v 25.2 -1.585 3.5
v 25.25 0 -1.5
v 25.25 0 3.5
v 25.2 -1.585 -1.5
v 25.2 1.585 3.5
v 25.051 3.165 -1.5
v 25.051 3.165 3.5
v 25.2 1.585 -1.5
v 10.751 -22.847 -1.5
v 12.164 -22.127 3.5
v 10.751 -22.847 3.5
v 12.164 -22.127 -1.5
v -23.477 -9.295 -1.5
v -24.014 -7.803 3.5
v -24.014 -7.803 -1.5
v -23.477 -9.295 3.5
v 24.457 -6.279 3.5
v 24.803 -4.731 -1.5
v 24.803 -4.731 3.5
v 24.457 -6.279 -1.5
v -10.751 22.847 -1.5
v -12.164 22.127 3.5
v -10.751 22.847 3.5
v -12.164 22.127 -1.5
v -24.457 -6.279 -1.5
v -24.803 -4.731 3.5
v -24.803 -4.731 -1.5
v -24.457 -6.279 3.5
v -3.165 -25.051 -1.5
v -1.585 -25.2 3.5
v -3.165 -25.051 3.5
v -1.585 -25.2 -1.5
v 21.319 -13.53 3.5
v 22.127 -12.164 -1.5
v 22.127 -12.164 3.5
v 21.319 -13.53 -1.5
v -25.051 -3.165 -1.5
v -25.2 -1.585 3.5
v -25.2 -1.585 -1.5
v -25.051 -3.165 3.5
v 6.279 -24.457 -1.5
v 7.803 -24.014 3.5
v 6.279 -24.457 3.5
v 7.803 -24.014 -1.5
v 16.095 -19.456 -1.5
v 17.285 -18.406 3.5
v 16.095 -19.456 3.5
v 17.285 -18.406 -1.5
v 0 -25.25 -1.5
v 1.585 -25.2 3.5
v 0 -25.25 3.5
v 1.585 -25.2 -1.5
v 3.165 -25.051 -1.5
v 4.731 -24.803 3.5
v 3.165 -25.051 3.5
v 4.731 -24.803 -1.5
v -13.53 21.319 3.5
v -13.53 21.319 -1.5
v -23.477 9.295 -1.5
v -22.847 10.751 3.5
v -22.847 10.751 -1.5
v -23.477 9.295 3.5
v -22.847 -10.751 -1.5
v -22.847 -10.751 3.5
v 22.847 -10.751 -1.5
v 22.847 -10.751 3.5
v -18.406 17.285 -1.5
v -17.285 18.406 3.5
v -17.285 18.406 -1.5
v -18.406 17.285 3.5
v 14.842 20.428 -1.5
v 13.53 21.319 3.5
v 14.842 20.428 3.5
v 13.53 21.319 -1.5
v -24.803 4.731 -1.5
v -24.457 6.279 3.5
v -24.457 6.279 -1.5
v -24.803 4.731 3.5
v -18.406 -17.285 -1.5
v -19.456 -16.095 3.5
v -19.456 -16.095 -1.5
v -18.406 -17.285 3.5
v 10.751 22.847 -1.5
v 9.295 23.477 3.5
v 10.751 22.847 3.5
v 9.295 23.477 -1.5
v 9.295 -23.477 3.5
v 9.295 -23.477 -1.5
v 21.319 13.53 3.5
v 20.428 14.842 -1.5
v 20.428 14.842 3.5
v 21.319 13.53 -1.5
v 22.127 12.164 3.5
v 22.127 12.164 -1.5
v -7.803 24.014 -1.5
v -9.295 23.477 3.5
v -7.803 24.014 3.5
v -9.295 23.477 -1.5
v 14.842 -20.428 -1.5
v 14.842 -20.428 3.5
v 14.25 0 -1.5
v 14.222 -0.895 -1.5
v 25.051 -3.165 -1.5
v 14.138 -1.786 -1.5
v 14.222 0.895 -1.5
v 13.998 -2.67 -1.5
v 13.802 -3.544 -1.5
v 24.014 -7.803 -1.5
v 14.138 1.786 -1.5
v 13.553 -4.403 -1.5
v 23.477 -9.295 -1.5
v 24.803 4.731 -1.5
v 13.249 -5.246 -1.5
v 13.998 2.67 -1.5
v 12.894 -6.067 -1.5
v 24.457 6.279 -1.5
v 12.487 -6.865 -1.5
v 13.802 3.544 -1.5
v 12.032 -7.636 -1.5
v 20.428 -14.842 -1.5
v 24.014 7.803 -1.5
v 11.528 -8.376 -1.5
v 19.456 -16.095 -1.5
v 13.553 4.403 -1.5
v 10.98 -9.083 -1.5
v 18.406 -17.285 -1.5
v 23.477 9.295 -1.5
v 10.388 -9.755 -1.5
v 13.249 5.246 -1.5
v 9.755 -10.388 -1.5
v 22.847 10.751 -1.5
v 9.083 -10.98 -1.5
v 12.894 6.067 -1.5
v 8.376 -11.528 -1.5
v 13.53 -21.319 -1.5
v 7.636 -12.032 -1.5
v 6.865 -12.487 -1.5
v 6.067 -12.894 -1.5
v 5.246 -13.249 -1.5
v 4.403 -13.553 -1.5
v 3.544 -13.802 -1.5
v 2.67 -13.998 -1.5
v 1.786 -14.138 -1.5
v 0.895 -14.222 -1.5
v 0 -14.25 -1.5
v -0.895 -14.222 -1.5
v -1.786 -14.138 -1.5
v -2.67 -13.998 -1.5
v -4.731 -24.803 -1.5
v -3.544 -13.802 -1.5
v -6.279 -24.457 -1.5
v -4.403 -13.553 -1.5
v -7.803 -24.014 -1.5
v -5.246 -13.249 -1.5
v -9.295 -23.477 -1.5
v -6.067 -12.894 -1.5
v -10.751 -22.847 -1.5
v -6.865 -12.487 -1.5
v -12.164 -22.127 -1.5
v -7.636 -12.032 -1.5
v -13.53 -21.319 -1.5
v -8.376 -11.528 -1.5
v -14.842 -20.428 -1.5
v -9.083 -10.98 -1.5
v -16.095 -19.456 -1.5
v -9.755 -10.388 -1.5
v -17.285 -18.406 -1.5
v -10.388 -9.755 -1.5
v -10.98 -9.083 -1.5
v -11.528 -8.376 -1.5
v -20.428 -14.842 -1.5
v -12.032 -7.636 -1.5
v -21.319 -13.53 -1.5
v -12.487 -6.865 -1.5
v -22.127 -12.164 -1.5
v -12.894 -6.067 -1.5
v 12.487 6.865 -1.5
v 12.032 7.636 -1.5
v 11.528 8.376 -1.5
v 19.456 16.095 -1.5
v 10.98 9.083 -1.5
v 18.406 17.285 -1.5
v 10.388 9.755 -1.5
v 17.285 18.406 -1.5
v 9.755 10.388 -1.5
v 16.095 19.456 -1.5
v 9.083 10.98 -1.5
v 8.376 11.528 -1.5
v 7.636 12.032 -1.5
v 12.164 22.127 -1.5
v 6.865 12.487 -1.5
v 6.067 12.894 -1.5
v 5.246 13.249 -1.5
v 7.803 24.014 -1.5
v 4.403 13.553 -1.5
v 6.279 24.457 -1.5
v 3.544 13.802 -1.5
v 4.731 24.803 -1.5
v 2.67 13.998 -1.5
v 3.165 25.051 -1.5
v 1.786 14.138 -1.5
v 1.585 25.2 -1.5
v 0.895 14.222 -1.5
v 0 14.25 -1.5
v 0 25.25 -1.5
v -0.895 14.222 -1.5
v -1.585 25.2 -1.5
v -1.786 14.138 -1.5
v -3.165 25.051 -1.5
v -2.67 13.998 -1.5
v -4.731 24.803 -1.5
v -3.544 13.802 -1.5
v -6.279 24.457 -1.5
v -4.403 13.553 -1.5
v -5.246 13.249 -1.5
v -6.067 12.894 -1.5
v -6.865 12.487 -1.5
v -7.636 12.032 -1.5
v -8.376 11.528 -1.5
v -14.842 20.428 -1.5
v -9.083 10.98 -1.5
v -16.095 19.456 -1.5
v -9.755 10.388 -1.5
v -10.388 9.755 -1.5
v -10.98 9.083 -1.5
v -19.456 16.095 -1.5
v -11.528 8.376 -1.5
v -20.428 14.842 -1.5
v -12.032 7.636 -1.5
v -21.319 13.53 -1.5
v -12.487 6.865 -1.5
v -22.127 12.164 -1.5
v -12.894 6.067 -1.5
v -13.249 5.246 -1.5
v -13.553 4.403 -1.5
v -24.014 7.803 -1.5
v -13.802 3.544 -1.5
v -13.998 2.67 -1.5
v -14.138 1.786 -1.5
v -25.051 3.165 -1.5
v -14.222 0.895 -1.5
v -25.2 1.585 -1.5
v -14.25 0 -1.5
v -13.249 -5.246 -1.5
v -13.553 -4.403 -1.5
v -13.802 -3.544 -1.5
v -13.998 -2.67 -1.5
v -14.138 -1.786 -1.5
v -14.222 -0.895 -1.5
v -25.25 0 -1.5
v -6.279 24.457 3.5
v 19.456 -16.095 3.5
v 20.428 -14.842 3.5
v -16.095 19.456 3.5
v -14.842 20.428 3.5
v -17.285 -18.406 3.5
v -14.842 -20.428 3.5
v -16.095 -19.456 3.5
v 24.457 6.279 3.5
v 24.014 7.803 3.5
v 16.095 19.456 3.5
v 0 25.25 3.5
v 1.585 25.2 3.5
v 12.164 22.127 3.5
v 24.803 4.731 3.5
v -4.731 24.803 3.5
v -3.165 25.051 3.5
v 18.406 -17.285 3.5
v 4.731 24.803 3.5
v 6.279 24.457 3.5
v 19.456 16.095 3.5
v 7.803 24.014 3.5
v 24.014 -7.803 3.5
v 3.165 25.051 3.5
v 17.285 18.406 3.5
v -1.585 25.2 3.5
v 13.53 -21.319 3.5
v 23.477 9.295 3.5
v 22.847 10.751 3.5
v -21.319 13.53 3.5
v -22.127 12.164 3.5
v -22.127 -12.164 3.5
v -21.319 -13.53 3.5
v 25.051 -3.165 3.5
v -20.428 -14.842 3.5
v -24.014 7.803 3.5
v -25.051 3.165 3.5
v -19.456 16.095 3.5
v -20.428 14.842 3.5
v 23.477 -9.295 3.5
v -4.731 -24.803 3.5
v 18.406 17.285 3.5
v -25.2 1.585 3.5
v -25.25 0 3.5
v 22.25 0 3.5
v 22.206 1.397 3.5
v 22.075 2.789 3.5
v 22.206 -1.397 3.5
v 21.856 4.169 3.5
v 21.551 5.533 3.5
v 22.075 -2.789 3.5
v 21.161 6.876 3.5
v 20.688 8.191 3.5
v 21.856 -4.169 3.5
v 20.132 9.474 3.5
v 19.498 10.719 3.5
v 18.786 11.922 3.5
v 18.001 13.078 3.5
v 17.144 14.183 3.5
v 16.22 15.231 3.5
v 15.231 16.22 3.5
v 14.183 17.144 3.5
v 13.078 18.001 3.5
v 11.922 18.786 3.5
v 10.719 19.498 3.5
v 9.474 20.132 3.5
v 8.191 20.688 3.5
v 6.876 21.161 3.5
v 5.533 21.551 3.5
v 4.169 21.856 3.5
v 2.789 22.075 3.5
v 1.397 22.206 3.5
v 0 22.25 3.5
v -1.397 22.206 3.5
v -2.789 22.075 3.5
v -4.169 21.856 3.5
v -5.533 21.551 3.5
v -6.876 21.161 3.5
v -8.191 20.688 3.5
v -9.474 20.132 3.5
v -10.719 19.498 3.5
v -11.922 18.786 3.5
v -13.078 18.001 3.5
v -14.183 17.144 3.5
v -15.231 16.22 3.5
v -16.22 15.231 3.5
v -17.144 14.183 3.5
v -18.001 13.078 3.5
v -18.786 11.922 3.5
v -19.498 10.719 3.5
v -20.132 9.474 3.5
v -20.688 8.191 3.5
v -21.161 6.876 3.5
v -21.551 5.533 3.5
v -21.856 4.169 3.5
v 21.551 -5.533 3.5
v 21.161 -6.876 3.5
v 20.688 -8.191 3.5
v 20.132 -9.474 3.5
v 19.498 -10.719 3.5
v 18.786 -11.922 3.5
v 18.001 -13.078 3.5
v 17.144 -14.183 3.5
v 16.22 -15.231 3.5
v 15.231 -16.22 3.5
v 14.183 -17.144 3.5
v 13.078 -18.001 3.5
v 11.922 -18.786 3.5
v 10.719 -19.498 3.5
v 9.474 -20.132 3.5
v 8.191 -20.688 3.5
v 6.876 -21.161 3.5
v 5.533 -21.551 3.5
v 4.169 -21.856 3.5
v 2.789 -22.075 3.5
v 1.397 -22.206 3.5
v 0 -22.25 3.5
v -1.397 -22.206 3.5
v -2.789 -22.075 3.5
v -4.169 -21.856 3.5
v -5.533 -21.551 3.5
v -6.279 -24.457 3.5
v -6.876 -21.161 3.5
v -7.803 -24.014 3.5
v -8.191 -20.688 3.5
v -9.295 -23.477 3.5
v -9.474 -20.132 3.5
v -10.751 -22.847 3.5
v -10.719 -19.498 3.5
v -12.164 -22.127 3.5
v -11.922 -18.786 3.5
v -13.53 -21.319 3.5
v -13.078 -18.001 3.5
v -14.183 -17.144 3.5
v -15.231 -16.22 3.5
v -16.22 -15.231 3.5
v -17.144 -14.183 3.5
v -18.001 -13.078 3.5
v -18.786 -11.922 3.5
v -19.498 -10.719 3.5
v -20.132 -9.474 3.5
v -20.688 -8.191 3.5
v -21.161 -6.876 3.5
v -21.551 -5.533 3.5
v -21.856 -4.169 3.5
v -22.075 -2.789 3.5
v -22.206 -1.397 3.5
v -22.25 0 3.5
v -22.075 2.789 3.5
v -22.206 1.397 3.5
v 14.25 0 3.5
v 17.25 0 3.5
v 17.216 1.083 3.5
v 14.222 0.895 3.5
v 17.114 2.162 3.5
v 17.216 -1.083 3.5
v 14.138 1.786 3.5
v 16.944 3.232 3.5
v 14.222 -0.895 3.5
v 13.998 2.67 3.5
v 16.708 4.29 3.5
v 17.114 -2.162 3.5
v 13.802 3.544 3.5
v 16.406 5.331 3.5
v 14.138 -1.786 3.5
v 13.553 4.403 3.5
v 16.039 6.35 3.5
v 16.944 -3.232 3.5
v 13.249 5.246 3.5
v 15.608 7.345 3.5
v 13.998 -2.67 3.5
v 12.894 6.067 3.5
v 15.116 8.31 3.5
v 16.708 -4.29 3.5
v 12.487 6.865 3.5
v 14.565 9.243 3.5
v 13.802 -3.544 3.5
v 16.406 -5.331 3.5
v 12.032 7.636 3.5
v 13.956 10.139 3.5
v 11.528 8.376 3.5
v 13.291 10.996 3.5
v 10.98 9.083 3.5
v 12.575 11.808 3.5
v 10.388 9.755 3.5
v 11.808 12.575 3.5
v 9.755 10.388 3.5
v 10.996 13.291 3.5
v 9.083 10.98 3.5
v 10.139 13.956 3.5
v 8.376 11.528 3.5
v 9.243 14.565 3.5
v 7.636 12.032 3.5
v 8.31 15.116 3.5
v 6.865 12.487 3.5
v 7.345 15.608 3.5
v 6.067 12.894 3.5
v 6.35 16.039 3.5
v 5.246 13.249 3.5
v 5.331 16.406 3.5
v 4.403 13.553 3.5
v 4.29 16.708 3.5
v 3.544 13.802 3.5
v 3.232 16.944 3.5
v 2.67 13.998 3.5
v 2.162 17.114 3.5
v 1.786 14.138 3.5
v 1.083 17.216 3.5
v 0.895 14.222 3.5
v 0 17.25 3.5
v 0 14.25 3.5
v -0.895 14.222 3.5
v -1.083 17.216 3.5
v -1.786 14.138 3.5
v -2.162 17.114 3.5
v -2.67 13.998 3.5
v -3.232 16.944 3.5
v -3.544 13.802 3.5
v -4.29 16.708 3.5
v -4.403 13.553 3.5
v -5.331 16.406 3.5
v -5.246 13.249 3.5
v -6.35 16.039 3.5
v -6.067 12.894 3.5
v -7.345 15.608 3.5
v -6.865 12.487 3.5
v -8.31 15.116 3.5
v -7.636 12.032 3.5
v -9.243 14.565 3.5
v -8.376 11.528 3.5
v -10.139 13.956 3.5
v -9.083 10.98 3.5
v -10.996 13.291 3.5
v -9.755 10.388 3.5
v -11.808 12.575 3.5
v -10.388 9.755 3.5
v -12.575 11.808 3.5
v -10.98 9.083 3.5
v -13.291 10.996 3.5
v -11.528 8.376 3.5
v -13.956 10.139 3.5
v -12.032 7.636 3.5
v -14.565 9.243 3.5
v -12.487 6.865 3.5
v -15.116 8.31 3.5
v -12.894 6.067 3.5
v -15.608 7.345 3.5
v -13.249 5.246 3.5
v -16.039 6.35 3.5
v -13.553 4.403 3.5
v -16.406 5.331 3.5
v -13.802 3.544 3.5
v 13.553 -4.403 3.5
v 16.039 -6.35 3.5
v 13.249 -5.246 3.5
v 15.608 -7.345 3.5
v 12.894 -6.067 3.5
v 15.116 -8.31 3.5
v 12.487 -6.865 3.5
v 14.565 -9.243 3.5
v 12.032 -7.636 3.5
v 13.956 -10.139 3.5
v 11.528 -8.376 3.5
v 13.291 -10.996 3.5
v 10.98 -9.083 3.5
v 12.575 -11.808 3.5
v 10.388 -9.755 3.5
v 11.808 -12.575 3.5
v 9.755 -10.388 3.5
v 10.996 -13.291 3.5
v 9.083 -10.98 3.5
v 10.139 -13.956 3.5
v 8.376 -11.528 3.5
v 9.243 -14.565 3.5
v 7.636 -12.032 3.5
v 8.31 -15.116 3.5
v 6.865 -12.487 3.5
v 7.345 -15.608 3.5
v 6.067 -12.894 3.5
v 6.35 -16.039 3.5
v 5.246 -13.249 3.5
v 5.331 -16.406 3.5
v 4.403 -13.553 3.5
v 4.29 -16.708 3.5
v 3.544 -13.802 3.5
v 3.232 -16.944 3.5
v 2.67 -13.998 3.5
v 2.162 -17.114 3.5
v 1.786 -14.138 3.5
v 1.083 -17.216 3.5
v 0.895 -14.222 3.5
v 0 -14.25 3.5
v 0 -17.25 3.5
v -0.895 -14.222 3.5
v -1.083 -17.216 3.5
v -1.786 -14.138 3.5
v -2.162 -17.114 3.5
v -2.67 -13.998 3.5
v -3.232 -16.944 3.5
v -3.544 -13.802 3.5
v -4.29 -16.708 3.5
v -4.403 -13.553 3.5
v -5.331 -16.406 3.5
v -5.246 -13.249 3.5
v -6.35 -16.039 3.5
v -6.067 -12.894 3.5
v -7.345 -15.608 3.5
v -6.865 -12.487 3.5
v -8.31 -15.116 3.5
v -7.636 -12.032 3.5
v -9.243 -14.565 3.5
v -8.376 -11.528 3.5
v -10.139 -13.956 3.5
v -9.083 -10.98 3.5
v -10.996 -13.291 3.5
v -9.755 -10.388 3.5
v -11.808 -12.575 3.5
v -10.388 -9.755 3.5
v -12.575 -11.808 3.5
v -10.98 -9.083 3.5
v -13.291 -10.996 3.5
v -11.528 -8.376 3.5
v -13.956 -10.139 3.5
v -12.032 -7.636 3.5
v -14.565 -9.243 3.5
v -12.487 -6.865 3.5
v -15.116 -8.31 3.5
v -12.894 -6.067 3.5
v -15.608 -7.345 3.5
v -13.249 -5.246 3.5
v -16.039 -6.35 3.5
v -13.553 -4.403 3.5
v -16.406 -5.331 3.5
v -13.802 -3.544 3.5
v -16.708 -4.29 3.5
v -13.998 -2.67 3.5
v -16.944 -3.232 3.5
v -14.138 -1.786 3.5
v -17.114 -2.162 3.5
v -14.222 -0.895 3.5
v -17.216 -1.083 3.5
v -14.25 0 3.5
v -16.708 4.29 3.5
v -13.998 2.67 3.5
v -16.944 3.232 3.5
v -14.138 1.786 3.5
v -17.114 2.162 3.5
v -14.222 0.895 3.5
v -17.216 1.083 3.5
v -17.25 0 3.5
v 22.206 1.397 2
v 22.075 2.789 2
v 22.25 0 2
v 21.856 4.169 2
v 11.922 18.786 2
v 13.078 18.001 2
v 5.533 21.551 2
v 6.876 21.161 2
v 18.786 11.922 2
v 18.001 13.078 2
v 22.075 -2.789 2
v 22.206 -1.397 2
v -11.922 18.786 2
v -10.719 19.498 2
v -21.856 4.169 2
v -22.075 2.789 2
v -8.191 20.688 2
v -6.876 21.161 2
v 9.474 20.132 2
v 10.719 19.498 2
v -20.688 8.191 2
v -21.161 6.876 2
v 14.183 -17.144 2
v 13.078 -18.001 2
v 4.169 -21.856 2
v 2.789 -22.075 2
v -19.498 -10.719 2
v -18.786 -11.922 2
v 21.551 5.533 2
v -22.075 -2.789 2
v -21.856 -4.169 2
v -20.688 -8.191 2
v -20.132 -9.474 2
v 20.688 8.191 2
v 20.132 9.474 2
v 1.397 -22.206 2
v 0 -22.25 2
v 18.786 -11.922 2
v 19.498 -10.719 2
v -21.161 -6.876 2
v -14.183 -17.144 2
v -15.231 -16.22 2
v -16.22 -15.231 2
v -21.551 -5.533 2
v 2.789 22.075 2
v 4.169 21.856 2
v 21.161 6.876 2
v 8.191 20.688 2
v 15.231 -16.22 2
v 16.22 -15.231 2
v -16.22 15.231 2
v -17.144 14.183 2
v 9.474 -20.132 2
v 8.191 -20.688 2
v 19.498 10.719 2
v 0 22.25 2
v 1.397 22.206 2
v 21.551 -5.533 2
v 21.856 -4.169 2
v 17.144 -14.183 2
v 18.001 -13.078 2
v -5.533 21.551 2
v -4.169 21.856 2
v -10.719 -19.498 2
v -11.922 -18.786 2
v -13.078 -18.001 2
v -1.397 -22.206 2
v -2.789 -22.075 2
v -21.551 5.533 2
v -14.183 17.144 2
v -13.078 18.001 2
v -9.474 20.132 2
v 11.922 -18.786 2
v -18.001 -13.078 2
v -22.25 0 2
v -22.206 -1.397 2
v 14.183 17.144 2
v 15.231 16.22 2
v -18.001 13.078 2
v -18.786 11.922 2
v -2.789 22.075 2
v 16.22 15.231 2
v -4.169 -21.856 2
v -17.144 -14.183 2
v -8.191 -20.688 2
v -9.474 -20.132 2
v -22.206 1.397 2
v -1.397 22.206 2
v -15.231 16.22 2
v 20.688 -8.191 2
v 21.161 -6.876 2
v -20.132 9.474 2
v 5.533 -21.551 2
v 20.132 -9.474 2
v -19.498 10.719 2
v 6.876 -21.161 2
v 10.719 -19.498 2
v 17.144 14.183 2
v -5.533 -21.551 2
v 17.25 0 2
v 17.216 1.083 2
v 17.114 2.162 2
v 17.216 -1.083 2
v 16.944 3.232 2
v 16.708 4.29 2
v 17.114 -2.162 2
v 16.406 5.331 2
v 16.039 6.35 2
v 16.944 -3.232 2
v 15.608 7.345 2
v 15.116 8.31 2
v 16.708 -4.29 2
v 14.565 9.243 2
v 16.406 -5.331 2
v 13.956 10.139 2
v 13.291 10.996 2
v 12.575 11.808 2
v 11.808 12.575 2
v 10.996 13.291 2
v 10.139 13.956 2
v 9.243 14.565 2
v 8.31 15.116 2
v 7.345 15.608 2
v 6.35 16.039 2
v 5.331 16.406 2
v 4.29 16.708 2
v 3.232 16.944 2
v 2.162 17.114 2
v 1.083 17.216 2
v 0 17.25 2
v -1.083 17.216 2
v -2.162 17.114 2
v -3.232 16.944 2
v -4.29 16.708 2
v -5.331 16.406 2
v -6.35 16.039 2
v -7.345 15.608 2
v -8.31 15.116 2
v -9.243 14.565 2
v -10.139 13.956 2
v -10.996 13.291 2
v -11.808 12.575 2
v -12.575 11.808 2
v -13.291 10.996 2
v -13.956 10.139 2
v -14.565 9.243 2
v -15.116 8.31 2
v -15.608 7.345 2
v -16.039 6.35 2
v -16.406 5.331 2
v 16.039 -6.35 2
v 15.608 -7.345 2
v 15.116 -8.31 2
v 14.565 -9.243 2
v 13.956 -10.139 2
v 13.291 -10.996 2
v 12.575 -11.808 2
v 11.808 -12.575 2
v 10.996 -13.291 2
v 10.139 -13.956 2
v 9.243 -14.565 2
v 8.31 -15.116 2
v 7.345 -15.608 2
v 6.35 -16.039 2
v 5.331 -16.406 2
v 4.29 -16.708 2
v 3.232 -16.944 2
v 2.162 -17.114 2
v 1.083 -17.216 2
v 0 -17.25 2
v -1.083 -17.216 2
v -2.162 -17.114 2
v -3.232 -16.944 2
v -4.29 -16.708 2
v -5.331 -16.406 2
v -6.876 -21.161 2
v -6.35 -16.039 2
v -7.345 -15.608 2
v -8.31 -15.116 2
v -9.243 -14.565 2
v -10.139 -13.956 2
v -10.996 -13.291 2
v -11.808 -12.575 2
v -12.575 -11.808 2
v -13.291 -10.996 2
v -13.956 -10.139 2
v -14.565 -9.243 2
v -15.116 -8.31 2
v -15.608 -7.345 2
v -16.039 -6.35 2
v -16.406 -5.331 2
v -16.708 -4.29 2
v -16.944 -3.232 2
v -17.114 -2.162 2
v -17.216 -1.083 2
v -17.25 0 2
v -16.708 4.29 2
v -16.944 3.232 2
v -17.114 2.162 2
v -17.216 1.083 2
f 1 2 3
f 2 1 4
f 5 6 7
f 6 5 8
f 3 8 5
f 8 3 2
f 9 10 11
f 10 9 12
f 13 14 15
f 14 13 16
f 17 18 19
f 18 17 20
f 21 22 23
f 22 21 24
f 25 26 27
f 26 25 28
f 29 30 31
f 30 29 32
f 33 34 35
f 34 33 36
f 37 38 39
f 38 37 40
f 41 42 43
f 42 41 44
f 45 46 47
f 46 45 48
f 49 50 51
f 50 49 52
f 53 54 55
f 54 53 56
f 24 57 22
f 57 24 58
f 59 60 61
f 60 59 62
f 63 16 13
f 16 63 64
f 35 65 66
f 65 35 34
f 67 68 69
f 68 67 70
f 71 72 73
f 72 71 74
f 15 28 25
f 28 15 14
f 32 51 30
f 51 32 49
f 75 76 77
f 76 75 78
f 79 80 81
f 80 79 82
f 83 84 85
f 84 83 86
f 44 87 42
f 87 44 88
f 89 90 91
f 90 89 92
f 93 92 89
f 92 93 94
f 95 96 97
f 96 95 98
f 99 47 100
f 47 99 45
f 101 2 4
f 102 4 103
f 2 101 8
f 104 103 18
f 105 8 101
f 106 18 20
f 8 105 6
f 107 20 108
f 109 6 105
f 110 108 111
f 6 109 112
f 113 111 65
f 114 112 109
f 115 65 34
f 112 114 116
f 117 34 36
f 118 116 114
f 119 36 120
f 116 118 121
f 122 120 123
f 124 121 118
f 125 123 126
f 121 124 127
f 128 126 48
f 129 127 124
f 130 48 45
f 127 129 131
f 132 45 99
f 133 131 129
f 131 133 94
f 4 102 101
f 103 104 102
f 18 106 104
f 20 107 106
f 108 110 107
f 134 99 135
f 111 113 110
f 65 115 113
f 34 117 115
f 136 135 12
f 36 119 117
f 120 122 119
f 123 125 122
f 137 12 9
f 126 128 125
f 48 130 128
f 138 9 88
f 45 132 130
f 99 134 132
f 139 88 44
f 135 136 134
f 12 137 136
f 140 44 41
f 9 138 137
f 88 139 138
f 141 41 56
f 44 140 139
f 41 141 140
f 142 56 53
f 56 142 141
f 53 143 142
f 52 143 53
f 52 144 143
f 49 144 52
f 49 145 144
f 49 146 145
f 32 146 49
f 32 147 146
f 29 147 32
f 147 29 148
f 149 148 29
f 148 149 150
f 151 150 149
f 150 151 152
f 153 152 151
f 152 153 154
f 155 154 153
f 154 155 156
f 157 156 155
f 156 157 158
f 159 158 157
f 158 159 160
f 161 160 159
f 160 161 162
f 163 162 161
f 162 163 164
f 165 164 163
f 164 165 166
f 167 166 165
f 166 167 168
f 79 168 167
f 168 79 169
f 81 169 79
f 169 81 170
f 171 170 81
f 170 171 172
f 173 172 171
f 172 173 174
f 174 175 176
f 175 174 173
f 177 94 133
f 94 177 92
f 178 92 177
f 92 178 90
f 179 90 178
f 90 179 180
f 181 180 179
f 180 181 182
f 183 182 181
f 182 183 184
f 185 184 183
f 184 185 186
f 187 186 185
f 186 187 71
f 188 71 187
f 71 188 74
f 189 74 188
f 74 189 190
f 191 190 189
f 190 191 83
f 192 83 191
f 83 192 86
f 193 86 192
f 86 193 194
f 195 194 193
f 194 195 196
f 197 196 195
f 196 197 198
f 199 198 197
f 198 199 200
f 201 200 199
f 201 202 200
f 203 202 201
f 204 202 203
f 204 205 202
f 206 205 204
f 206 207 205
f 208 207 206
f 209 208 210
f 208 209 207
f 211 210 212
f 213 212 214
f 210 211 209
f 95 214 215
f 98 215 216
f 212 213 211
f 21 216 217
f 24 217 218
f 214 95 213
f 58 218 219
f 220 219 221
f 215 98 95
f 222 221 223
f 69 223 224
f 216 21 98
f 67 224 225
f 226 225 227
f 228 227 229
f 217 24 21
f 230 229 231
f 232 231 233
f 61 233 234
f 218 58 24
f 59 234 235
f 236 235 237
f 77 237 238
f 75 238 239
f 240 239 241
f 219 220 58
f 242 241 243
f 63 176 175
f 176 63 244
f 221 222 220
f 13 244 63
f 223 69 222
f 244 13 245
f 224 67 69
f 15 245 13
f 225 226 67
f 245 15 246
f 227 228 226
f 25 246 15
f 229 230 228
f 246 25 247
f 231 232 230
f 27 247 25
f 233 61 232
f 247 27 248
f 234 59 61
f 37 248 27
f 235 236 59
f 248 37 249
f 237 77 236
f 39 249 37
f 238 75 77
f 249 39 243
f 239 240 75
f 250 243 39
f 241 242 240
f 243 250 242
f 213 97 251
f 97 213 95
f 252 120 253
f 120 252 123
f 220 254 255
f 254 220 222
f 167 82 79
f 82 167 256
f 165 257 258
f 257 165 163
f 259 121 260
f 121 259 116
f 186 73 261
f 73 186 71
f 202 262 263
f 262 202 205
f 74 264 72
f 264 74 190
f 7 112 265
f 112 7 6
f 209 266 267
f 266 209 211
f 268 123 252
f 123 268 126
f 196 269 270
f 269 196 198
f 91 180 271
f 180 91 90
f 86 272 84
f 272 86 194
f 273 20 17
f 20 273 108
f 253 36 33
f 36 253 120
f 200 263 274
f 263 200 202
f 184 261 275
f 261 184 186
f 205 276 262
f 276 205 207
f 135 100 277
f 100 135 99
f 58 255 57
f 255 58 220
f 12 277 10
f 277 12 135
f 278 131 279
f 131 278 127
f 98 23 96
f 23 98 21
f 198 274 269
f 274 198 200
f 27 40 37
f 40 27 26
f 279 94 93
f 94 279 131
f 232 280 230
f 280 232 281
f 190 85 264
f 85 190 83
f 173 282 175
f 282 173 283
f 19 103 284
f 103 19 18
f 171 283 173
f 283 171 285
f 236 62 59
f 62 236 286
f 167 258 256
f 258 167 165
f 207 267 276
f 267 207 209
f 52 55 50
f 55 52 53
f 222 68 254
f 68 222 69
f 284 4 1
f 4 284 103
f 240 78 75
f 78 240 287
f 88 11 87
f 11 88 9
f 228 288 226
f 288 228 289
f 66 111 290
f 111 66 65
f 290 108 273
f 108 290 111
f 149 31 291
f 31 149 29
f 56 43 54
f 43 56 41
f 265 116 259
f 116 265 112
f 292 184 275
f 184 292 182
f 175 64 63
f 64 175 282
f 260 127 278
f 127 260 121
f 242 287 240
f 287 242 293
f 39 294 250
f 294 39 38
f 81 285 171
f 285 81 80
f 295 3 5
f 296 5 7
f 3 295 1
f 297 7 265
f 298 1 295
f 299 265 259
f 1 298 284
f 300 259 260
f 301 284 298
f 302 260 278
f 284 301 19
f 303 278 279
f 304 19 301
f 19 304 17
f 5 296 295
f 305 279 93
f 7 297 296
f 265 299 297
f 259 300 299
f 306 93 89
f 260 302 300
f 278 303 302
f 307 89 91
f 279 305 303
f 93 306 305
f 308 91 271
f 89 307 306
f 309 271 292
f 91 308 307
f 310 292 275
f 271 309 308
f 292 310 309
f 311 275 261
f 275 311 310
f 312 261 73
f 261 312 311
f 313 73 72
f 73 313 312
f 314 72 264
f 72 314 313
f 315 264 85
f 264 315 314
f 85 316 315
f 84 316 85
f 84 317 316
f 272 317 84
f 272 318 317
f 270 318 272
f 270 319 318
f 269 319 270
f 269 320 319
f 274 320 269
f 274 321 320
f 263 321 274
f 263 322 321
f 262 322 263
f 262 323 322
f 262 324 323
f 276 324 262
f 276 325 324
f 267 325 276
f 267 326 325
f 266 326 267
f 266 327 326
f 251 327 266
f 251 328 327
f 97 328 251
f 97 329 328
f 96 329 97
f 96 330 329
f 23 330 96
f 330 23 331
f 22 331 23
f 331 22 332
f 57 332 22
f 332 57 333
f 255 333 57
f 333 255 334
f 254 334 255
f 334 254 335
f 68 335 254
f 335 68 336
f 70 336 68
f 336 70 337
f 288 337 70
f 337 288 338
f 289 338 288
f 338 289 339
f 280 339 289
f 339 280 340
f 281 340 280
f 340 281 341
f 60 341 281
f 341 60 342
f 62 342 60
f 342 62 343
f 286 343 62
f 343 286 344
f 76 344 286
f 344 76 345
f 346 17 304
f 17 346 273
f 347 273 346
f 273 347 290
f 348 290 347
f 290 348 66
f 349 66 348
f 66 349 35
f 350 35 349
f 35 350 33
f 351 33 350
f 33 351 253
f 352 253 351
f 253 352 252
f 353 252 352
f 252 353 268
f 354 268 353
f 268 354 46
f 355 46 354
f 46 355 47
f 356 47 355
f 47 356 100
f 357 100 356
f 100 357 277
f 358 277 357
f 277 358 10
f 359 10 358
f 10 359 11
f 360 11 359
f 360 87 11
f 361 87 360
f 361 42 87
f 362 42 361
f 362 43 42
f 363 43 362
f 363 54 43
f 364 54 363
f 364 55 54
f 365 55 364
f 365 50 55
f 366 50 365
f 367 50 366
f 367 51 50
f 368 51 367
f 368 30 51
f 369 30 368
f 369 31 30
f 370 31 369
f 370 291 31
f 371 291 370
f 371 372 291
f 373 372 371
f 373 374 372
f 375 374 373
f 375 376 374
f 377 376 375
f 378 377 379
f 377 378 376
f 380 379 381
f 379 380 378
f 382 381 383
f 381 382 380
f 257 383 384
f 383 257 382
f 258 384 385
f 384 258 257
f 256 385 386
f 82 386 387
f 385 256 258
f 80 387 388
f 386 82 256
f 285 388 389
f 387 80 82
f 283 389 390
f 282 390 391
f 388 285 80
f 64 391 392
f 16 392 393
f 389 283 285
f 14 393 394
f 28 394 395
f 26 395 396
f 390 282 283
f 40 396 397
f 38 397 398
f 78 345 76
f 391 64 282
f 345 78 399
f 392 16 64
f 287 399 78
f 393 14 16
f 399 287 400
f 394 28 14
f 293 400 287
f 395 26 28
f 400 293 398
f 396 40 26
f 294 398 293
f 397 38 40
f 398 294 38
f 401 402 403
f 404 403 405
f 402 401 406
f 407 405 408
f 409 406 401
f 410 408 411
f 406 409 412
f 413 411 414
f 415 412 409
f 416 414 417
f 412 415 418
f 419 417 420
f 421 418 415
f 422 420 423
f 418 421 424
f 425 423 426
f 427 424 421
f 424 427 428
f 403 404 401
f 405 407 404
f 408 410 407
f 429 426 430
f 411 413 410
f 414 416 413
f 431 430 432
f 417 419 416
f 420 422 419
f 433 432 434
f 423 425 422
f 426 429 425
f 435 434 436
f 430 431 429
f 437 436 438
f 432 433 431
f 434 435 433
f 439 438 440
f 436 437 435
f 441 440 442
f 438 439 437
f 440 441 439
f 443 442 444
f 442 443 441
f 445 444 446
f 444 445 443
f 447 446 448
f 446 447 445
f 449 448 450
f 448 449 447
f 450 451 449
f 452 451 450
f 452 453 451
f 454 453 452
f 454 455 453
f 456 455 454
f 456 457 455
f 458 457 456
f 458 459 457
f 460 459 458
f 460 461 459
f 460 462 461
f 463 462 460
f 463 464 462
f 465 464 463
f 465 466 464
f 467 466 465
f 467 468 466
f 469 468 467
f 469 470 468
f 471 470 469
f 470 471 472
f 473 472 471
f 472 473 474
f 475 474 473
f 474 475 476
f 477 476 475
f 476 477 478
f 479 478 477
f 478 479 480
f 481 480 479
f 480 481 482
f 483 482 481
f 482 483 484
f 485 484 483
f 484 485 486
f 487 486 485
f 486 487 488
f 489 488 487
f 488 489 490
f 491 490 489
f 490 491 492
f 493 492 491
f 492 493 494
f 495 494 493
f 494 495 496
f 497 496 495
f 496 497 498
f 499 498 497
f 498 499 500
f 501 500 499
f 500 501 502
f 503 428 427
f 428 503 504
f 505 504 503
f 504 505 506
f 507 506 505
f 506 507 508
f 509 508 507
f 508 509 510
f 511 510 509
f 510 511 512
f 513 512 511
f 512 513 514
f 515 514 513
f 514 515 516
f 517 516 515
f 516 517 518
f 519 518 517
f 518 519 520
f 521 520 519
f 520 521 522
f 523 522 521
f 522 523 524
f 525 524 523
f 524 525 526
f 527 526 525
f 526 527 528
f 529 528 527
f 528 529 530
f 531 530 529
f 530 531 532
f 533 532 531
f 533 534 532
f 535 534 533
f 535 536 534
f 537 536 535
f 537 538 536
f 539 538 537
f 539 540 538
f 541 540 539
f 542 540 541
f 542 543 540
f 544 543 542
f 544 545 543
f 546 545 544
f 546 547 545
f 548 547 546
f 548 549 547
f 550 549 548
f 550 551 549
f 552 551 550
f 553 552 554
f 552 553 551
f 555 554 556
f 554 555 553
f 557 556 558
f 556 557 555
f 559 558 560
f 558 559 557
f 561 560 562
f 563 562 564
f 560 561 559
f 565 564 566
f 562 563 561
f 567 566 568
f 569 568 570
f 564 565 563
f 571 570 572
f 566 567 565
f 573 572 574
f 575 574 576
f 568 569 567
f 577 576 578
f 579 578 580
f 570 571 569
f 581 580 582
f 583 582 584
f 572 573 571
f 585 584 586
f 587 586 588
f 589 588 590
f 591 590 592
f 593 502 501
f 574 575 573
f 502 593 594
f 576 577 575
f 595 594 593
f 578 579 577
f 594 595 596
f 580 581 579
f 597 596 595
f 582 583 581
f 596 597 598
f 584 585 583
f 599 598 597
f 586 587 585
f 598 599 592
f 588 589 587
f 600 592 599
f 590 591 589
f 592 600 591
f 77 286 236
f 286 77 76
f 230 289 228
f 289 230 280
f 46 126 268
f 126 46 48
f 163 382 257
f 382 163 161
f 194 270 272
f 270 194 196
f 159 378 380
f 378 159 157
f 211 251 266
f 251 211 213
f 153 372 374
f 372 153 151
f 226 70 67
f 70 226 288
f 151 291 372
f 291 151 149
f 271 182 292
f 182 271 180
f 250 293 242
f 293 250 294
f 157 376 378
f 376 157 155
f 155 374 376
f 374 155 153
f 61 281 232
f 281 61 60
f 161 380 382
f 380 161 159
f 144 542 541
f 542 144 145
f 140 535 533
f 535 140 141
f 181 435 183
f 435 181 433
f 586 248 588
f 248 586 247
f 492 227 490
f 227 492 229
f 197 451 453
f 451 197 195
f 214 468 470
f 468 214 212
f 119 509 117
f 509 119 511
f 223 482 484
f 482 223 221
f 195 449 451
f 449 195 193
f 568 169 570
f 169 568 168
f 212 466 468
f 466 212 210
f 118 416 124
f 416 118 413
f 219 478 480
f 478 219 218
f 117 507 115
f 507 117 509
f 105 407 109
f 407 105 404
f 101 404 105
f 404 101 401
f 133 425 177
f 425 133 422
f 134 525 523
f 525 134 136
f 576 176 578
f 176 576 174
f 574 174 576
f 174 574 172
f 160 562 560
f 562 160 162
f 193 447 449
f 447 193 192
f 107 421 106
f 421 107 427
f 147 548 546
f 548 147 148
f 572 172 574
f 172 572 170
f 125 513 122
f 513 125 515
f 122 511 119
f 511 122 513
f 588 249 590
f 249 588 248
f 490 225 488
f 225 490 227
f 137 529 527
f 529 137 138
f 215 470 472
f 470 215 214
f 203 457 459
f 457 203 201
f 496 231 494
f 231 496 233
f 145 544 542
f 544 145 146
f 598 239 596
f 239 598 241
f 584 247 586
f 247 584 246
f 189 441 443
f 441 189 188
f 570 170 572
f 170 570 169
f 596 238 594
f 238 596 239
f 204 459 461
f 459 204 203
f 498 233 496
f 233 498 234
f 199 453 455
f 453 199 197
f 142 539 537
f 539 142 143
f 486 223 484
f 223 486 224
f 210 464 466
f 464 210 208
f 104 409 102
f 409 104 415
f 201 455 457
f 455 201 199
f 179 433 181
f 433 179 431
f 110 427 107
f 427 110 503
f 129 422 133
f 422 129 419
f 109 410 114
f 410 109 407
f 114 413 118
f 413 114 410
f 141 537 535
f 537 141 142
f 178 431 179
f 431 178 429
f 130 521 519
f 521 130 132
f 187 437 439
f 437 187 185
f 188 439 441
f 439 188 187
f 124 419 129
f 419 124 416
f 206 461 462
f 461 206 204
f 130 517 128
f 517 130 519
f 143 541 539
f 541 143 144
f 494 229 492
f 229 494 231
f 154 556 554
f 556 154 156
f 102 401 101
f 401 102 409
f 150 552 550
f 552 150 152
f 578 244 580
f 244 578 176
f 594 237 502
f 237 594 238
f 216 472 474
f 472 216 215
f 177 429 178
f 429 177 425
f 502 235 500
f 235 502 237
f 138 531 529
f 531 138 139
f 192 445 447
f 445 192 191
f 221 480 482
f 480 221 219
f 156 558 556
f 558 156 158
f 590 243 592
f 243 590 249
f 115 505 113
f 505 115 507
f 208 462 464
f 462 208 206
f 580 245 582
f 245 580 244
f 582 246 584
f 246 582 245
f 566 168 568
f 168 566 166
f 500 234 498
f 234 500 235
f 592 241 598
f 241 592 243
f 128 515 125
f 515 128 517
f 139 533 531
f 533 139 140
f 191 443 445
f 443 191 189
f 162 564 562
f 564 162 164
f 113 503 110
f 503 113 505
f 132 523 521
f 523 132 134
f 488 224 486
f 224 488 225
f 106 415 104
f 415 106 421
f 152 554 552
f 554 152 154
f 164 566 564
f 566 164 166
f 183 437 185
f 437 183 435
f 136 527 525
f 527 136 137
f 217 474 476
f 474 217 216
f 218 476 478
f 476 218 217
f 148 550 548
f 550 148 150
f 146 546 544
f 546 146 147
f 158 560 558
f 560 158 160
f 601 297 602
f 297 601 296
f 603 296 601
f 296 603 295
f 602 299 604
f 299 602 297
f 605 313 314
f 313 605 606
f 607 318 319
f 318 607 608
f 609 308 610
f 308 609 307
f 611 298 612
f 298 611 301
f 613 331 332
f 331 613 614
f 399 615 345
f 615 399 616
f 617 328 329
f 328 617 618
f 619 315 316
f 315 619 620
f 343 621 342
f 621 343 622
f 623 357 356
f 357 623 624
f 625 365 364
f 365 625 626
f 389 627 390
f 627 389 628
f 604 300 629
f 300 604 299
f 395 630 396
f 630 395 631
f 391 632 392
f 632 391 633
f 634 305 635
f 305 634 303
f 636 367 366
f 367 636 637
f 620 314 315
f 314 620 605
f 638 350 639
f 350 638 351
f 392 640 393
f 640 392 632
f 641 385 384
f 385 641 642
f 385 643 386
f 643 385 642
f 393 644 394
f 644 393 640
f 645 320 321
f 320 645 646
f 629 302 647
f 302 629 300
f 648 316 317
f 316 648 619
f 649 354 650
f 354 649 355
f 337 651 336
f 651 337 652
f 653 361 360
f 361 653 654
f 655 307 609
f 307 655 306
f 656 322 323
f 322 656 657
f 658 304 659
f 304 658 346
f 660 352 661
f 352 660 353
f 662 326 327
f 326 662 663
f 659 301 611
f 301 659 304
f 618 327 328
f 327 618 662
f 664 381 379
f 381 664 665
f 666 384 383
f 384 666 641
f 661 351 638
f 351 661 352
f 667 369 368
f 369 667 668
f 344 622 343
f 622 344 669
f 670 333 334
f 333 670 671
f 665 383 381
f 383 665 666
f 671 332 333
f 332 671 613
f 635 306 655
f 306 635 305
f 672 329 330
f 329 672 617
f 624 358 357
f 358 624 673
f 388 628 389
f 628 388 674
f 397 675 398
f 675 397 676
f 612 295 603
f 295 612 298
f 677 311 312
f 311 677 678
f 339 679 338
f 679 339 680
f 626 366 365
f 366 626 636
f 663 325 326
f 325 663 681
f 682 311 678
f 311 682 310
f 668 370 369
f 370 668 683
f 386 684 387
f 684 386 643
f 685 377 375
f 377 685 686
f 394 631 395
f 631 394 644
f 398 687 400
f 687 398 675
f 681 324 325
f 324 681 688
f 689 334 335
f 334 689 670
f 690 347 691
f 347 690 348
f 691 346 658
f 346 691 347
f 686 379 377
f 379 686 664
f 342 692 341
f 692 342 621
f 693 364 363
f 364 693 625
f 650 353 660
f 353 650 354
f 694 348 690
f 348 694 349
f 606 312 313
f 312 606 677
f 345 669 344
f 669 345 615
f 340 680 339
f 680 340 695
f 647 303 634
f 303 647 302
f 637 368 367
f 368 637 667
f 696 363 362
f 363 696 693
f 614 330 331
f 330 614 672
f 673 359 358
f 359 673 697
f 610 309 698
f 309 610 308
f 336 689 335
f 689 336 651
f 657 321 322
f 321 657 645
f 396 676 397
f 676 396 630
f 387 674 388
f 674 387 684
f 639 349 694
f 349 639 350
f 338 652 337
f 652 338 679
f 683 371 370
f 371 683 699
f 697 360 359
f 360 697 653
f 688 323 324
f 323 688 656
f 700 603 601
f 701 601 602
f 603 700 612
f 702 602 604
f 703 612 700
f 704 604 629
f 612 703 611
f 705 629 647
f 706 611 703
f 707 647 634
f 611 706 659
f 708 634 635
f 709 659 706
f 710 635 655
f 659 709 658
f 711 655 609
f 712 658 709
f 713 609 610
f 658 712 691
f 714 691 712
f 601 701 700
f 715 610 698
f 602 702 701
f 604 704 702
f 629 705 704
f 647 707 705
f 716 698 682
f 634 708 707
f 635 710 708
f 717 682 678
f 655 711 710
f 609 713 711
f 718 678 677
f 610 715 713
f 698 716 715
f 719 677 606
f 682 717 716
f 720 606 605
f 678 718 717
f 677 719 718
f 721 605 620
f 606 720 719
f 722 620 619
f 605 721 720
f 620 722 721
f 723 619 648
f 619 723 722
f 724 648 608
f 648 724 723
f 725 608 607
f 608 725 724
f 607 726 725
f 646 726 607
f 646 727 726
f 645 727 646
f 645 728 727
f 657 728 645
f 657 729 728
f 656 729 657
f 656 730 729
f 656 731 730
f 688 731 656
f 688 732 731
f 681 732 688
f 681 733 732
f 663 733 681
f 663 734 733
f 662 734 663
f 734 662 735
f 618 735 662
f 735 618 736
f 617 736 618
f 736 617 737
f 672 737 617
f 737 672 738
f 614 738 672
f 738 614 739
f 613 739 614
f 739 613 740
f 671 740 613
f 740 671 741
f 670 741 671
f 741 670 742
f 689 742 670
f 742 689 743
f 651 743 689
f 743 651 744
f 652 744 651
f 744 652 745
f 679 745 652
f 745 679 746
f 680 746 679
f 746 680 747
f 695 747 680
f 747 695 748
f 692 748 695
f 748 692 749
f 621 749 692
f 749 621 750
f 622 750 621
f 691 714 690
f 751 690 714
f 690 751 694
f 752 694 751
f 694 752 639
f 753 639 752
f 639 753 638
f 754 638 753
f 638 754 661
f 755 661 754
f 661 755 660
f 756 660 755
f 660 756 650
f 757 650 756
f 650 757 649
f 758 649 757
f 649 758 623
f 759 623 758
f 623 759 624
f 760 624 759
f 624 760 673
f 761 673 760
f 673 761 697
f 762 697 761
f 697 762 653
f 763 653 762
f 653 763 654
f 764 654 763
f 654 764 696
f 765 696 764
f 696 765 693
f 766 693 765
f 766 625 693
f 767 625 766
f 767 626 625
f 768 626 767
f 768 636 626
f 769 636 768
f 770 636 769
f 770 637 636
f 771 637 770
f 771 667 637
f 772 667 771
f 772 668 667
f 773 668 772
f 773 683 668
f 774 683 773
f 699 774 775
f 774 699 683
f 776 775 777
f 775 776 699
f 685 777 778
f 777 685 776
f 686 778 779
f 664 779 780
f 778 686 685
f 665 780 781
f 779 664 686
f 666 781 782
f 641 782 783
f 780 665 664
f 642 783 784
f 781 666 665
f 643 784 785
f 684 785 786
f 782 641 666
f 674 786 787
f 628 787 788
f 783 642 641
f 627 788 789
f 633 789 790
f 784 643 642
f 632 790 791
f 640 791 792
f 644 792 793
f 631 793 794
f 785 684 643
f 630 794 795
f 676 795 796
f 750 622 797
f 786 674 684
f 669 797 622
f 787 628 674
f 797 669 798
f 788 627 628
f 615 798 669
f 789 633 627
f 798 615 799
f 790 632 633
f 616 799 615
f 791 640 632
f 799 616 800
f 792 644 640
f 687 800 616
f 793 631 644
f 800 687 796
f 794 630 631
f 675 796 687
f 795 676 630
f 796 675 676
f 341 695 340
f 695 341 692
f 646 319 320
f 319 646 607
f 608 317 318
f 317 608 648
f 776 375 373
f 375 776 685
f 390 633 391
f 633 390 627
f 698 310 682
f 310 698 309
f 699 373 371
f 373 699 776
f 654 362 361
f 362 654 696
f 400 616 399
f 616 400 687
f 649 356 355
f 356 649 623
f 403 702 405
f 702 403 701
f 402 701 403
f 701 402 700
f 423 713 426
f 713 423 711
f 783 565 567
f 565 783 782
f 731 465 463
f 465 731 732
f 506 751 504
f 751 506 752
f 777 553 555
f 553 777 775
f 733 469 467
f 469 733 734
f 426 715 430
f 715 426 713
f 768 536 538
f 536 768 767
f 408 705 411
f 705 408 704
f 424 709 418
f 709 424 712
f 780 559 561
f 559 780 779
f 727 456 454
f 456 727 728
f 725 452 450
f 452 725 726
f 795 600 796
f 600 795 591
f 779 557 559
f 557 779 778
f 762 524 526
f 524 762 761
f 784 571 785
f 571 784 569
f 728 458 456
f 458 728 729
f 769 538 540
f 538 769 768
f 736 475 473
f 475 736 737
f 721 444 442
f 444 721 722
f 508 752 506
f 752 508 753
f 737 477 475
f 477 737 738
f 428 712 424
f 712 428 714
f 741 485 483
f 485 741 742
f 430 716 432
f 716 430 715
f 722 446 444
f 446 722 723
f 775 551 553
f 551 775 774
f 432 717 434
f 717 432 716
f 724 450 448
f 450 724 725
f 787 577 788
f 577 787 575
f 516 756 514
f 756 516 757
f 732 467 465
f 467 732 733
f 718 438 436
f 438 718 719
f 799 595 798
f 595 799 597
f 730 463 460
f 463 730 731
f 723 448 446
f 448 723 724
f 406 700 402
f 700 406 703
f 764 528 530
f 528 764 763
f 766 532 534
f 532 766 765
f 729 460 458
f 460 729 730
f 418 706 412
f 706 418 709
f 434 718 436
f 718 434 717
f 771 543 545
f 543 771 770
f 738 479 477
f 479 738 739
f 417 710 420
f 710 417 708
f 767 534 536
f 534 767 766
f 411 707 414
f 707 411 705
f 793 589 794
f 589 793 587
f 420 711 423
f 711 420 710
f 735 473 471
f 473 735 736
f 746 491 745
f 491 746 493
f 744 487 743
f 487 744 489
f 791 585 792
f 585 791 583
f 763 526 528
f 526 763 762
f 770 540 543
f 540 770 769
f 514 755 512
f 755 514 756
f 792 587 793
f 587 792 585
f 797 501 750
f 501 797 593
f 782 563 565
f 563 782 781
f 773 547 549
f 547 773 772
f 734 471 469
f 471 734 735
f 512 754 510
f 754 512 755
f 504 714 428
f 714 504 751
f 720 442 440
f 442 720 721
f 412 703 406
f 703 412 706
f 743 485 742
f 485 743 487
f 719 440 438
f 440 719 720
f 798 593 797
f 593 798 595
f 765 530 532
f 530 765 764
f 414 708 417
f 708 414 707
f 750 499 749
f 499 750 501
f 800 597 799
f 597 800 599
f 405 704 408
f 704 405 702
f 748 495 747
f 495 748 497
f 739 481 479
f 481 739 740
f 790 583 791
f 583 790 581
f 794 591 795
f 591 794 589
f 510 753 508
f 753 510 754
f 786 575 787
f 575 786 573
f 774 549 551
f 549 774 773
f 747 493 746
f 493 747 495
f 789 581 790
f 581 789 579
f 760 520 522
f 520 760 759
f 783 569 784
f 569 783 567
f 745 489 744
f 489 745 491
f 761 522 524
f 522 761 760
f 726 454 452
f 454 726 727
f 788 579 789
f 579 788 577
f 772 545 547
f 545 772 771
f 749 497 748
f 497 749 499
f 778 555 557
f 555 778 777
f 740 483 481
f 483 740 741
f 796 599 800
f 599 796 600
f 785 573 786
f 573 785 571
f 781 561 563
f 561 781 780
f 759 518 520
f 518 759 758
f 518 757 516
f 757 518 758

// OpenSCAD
//in milimeters
//material flex
//t 90/245
hole_diameter=34.5;
outer_diameter=44.5;
thickness=2;

module gasketRing(){
translate([0,0,thickness/2+2]){
difference(){
//outer
cylinder(h=thickness,r=outer_diameter/2,center=true,$fn=100);
//hole
cylinder(h=thickness+2,r=hole_diameter/2,center=true,$fn=100);
}
}}

module form(){
translate([0,0,thickness/2]){
difference(){
//outer
cylinder(h=thickness+3,r=outer_diameter/2+3,center=true,$fn=100);
//hole
cylinder(h=thickness+6,r=hole_diameter/2-3,center=true,$fn=100);
}
} 
}

difference(){
form();
gasketRing();
}
